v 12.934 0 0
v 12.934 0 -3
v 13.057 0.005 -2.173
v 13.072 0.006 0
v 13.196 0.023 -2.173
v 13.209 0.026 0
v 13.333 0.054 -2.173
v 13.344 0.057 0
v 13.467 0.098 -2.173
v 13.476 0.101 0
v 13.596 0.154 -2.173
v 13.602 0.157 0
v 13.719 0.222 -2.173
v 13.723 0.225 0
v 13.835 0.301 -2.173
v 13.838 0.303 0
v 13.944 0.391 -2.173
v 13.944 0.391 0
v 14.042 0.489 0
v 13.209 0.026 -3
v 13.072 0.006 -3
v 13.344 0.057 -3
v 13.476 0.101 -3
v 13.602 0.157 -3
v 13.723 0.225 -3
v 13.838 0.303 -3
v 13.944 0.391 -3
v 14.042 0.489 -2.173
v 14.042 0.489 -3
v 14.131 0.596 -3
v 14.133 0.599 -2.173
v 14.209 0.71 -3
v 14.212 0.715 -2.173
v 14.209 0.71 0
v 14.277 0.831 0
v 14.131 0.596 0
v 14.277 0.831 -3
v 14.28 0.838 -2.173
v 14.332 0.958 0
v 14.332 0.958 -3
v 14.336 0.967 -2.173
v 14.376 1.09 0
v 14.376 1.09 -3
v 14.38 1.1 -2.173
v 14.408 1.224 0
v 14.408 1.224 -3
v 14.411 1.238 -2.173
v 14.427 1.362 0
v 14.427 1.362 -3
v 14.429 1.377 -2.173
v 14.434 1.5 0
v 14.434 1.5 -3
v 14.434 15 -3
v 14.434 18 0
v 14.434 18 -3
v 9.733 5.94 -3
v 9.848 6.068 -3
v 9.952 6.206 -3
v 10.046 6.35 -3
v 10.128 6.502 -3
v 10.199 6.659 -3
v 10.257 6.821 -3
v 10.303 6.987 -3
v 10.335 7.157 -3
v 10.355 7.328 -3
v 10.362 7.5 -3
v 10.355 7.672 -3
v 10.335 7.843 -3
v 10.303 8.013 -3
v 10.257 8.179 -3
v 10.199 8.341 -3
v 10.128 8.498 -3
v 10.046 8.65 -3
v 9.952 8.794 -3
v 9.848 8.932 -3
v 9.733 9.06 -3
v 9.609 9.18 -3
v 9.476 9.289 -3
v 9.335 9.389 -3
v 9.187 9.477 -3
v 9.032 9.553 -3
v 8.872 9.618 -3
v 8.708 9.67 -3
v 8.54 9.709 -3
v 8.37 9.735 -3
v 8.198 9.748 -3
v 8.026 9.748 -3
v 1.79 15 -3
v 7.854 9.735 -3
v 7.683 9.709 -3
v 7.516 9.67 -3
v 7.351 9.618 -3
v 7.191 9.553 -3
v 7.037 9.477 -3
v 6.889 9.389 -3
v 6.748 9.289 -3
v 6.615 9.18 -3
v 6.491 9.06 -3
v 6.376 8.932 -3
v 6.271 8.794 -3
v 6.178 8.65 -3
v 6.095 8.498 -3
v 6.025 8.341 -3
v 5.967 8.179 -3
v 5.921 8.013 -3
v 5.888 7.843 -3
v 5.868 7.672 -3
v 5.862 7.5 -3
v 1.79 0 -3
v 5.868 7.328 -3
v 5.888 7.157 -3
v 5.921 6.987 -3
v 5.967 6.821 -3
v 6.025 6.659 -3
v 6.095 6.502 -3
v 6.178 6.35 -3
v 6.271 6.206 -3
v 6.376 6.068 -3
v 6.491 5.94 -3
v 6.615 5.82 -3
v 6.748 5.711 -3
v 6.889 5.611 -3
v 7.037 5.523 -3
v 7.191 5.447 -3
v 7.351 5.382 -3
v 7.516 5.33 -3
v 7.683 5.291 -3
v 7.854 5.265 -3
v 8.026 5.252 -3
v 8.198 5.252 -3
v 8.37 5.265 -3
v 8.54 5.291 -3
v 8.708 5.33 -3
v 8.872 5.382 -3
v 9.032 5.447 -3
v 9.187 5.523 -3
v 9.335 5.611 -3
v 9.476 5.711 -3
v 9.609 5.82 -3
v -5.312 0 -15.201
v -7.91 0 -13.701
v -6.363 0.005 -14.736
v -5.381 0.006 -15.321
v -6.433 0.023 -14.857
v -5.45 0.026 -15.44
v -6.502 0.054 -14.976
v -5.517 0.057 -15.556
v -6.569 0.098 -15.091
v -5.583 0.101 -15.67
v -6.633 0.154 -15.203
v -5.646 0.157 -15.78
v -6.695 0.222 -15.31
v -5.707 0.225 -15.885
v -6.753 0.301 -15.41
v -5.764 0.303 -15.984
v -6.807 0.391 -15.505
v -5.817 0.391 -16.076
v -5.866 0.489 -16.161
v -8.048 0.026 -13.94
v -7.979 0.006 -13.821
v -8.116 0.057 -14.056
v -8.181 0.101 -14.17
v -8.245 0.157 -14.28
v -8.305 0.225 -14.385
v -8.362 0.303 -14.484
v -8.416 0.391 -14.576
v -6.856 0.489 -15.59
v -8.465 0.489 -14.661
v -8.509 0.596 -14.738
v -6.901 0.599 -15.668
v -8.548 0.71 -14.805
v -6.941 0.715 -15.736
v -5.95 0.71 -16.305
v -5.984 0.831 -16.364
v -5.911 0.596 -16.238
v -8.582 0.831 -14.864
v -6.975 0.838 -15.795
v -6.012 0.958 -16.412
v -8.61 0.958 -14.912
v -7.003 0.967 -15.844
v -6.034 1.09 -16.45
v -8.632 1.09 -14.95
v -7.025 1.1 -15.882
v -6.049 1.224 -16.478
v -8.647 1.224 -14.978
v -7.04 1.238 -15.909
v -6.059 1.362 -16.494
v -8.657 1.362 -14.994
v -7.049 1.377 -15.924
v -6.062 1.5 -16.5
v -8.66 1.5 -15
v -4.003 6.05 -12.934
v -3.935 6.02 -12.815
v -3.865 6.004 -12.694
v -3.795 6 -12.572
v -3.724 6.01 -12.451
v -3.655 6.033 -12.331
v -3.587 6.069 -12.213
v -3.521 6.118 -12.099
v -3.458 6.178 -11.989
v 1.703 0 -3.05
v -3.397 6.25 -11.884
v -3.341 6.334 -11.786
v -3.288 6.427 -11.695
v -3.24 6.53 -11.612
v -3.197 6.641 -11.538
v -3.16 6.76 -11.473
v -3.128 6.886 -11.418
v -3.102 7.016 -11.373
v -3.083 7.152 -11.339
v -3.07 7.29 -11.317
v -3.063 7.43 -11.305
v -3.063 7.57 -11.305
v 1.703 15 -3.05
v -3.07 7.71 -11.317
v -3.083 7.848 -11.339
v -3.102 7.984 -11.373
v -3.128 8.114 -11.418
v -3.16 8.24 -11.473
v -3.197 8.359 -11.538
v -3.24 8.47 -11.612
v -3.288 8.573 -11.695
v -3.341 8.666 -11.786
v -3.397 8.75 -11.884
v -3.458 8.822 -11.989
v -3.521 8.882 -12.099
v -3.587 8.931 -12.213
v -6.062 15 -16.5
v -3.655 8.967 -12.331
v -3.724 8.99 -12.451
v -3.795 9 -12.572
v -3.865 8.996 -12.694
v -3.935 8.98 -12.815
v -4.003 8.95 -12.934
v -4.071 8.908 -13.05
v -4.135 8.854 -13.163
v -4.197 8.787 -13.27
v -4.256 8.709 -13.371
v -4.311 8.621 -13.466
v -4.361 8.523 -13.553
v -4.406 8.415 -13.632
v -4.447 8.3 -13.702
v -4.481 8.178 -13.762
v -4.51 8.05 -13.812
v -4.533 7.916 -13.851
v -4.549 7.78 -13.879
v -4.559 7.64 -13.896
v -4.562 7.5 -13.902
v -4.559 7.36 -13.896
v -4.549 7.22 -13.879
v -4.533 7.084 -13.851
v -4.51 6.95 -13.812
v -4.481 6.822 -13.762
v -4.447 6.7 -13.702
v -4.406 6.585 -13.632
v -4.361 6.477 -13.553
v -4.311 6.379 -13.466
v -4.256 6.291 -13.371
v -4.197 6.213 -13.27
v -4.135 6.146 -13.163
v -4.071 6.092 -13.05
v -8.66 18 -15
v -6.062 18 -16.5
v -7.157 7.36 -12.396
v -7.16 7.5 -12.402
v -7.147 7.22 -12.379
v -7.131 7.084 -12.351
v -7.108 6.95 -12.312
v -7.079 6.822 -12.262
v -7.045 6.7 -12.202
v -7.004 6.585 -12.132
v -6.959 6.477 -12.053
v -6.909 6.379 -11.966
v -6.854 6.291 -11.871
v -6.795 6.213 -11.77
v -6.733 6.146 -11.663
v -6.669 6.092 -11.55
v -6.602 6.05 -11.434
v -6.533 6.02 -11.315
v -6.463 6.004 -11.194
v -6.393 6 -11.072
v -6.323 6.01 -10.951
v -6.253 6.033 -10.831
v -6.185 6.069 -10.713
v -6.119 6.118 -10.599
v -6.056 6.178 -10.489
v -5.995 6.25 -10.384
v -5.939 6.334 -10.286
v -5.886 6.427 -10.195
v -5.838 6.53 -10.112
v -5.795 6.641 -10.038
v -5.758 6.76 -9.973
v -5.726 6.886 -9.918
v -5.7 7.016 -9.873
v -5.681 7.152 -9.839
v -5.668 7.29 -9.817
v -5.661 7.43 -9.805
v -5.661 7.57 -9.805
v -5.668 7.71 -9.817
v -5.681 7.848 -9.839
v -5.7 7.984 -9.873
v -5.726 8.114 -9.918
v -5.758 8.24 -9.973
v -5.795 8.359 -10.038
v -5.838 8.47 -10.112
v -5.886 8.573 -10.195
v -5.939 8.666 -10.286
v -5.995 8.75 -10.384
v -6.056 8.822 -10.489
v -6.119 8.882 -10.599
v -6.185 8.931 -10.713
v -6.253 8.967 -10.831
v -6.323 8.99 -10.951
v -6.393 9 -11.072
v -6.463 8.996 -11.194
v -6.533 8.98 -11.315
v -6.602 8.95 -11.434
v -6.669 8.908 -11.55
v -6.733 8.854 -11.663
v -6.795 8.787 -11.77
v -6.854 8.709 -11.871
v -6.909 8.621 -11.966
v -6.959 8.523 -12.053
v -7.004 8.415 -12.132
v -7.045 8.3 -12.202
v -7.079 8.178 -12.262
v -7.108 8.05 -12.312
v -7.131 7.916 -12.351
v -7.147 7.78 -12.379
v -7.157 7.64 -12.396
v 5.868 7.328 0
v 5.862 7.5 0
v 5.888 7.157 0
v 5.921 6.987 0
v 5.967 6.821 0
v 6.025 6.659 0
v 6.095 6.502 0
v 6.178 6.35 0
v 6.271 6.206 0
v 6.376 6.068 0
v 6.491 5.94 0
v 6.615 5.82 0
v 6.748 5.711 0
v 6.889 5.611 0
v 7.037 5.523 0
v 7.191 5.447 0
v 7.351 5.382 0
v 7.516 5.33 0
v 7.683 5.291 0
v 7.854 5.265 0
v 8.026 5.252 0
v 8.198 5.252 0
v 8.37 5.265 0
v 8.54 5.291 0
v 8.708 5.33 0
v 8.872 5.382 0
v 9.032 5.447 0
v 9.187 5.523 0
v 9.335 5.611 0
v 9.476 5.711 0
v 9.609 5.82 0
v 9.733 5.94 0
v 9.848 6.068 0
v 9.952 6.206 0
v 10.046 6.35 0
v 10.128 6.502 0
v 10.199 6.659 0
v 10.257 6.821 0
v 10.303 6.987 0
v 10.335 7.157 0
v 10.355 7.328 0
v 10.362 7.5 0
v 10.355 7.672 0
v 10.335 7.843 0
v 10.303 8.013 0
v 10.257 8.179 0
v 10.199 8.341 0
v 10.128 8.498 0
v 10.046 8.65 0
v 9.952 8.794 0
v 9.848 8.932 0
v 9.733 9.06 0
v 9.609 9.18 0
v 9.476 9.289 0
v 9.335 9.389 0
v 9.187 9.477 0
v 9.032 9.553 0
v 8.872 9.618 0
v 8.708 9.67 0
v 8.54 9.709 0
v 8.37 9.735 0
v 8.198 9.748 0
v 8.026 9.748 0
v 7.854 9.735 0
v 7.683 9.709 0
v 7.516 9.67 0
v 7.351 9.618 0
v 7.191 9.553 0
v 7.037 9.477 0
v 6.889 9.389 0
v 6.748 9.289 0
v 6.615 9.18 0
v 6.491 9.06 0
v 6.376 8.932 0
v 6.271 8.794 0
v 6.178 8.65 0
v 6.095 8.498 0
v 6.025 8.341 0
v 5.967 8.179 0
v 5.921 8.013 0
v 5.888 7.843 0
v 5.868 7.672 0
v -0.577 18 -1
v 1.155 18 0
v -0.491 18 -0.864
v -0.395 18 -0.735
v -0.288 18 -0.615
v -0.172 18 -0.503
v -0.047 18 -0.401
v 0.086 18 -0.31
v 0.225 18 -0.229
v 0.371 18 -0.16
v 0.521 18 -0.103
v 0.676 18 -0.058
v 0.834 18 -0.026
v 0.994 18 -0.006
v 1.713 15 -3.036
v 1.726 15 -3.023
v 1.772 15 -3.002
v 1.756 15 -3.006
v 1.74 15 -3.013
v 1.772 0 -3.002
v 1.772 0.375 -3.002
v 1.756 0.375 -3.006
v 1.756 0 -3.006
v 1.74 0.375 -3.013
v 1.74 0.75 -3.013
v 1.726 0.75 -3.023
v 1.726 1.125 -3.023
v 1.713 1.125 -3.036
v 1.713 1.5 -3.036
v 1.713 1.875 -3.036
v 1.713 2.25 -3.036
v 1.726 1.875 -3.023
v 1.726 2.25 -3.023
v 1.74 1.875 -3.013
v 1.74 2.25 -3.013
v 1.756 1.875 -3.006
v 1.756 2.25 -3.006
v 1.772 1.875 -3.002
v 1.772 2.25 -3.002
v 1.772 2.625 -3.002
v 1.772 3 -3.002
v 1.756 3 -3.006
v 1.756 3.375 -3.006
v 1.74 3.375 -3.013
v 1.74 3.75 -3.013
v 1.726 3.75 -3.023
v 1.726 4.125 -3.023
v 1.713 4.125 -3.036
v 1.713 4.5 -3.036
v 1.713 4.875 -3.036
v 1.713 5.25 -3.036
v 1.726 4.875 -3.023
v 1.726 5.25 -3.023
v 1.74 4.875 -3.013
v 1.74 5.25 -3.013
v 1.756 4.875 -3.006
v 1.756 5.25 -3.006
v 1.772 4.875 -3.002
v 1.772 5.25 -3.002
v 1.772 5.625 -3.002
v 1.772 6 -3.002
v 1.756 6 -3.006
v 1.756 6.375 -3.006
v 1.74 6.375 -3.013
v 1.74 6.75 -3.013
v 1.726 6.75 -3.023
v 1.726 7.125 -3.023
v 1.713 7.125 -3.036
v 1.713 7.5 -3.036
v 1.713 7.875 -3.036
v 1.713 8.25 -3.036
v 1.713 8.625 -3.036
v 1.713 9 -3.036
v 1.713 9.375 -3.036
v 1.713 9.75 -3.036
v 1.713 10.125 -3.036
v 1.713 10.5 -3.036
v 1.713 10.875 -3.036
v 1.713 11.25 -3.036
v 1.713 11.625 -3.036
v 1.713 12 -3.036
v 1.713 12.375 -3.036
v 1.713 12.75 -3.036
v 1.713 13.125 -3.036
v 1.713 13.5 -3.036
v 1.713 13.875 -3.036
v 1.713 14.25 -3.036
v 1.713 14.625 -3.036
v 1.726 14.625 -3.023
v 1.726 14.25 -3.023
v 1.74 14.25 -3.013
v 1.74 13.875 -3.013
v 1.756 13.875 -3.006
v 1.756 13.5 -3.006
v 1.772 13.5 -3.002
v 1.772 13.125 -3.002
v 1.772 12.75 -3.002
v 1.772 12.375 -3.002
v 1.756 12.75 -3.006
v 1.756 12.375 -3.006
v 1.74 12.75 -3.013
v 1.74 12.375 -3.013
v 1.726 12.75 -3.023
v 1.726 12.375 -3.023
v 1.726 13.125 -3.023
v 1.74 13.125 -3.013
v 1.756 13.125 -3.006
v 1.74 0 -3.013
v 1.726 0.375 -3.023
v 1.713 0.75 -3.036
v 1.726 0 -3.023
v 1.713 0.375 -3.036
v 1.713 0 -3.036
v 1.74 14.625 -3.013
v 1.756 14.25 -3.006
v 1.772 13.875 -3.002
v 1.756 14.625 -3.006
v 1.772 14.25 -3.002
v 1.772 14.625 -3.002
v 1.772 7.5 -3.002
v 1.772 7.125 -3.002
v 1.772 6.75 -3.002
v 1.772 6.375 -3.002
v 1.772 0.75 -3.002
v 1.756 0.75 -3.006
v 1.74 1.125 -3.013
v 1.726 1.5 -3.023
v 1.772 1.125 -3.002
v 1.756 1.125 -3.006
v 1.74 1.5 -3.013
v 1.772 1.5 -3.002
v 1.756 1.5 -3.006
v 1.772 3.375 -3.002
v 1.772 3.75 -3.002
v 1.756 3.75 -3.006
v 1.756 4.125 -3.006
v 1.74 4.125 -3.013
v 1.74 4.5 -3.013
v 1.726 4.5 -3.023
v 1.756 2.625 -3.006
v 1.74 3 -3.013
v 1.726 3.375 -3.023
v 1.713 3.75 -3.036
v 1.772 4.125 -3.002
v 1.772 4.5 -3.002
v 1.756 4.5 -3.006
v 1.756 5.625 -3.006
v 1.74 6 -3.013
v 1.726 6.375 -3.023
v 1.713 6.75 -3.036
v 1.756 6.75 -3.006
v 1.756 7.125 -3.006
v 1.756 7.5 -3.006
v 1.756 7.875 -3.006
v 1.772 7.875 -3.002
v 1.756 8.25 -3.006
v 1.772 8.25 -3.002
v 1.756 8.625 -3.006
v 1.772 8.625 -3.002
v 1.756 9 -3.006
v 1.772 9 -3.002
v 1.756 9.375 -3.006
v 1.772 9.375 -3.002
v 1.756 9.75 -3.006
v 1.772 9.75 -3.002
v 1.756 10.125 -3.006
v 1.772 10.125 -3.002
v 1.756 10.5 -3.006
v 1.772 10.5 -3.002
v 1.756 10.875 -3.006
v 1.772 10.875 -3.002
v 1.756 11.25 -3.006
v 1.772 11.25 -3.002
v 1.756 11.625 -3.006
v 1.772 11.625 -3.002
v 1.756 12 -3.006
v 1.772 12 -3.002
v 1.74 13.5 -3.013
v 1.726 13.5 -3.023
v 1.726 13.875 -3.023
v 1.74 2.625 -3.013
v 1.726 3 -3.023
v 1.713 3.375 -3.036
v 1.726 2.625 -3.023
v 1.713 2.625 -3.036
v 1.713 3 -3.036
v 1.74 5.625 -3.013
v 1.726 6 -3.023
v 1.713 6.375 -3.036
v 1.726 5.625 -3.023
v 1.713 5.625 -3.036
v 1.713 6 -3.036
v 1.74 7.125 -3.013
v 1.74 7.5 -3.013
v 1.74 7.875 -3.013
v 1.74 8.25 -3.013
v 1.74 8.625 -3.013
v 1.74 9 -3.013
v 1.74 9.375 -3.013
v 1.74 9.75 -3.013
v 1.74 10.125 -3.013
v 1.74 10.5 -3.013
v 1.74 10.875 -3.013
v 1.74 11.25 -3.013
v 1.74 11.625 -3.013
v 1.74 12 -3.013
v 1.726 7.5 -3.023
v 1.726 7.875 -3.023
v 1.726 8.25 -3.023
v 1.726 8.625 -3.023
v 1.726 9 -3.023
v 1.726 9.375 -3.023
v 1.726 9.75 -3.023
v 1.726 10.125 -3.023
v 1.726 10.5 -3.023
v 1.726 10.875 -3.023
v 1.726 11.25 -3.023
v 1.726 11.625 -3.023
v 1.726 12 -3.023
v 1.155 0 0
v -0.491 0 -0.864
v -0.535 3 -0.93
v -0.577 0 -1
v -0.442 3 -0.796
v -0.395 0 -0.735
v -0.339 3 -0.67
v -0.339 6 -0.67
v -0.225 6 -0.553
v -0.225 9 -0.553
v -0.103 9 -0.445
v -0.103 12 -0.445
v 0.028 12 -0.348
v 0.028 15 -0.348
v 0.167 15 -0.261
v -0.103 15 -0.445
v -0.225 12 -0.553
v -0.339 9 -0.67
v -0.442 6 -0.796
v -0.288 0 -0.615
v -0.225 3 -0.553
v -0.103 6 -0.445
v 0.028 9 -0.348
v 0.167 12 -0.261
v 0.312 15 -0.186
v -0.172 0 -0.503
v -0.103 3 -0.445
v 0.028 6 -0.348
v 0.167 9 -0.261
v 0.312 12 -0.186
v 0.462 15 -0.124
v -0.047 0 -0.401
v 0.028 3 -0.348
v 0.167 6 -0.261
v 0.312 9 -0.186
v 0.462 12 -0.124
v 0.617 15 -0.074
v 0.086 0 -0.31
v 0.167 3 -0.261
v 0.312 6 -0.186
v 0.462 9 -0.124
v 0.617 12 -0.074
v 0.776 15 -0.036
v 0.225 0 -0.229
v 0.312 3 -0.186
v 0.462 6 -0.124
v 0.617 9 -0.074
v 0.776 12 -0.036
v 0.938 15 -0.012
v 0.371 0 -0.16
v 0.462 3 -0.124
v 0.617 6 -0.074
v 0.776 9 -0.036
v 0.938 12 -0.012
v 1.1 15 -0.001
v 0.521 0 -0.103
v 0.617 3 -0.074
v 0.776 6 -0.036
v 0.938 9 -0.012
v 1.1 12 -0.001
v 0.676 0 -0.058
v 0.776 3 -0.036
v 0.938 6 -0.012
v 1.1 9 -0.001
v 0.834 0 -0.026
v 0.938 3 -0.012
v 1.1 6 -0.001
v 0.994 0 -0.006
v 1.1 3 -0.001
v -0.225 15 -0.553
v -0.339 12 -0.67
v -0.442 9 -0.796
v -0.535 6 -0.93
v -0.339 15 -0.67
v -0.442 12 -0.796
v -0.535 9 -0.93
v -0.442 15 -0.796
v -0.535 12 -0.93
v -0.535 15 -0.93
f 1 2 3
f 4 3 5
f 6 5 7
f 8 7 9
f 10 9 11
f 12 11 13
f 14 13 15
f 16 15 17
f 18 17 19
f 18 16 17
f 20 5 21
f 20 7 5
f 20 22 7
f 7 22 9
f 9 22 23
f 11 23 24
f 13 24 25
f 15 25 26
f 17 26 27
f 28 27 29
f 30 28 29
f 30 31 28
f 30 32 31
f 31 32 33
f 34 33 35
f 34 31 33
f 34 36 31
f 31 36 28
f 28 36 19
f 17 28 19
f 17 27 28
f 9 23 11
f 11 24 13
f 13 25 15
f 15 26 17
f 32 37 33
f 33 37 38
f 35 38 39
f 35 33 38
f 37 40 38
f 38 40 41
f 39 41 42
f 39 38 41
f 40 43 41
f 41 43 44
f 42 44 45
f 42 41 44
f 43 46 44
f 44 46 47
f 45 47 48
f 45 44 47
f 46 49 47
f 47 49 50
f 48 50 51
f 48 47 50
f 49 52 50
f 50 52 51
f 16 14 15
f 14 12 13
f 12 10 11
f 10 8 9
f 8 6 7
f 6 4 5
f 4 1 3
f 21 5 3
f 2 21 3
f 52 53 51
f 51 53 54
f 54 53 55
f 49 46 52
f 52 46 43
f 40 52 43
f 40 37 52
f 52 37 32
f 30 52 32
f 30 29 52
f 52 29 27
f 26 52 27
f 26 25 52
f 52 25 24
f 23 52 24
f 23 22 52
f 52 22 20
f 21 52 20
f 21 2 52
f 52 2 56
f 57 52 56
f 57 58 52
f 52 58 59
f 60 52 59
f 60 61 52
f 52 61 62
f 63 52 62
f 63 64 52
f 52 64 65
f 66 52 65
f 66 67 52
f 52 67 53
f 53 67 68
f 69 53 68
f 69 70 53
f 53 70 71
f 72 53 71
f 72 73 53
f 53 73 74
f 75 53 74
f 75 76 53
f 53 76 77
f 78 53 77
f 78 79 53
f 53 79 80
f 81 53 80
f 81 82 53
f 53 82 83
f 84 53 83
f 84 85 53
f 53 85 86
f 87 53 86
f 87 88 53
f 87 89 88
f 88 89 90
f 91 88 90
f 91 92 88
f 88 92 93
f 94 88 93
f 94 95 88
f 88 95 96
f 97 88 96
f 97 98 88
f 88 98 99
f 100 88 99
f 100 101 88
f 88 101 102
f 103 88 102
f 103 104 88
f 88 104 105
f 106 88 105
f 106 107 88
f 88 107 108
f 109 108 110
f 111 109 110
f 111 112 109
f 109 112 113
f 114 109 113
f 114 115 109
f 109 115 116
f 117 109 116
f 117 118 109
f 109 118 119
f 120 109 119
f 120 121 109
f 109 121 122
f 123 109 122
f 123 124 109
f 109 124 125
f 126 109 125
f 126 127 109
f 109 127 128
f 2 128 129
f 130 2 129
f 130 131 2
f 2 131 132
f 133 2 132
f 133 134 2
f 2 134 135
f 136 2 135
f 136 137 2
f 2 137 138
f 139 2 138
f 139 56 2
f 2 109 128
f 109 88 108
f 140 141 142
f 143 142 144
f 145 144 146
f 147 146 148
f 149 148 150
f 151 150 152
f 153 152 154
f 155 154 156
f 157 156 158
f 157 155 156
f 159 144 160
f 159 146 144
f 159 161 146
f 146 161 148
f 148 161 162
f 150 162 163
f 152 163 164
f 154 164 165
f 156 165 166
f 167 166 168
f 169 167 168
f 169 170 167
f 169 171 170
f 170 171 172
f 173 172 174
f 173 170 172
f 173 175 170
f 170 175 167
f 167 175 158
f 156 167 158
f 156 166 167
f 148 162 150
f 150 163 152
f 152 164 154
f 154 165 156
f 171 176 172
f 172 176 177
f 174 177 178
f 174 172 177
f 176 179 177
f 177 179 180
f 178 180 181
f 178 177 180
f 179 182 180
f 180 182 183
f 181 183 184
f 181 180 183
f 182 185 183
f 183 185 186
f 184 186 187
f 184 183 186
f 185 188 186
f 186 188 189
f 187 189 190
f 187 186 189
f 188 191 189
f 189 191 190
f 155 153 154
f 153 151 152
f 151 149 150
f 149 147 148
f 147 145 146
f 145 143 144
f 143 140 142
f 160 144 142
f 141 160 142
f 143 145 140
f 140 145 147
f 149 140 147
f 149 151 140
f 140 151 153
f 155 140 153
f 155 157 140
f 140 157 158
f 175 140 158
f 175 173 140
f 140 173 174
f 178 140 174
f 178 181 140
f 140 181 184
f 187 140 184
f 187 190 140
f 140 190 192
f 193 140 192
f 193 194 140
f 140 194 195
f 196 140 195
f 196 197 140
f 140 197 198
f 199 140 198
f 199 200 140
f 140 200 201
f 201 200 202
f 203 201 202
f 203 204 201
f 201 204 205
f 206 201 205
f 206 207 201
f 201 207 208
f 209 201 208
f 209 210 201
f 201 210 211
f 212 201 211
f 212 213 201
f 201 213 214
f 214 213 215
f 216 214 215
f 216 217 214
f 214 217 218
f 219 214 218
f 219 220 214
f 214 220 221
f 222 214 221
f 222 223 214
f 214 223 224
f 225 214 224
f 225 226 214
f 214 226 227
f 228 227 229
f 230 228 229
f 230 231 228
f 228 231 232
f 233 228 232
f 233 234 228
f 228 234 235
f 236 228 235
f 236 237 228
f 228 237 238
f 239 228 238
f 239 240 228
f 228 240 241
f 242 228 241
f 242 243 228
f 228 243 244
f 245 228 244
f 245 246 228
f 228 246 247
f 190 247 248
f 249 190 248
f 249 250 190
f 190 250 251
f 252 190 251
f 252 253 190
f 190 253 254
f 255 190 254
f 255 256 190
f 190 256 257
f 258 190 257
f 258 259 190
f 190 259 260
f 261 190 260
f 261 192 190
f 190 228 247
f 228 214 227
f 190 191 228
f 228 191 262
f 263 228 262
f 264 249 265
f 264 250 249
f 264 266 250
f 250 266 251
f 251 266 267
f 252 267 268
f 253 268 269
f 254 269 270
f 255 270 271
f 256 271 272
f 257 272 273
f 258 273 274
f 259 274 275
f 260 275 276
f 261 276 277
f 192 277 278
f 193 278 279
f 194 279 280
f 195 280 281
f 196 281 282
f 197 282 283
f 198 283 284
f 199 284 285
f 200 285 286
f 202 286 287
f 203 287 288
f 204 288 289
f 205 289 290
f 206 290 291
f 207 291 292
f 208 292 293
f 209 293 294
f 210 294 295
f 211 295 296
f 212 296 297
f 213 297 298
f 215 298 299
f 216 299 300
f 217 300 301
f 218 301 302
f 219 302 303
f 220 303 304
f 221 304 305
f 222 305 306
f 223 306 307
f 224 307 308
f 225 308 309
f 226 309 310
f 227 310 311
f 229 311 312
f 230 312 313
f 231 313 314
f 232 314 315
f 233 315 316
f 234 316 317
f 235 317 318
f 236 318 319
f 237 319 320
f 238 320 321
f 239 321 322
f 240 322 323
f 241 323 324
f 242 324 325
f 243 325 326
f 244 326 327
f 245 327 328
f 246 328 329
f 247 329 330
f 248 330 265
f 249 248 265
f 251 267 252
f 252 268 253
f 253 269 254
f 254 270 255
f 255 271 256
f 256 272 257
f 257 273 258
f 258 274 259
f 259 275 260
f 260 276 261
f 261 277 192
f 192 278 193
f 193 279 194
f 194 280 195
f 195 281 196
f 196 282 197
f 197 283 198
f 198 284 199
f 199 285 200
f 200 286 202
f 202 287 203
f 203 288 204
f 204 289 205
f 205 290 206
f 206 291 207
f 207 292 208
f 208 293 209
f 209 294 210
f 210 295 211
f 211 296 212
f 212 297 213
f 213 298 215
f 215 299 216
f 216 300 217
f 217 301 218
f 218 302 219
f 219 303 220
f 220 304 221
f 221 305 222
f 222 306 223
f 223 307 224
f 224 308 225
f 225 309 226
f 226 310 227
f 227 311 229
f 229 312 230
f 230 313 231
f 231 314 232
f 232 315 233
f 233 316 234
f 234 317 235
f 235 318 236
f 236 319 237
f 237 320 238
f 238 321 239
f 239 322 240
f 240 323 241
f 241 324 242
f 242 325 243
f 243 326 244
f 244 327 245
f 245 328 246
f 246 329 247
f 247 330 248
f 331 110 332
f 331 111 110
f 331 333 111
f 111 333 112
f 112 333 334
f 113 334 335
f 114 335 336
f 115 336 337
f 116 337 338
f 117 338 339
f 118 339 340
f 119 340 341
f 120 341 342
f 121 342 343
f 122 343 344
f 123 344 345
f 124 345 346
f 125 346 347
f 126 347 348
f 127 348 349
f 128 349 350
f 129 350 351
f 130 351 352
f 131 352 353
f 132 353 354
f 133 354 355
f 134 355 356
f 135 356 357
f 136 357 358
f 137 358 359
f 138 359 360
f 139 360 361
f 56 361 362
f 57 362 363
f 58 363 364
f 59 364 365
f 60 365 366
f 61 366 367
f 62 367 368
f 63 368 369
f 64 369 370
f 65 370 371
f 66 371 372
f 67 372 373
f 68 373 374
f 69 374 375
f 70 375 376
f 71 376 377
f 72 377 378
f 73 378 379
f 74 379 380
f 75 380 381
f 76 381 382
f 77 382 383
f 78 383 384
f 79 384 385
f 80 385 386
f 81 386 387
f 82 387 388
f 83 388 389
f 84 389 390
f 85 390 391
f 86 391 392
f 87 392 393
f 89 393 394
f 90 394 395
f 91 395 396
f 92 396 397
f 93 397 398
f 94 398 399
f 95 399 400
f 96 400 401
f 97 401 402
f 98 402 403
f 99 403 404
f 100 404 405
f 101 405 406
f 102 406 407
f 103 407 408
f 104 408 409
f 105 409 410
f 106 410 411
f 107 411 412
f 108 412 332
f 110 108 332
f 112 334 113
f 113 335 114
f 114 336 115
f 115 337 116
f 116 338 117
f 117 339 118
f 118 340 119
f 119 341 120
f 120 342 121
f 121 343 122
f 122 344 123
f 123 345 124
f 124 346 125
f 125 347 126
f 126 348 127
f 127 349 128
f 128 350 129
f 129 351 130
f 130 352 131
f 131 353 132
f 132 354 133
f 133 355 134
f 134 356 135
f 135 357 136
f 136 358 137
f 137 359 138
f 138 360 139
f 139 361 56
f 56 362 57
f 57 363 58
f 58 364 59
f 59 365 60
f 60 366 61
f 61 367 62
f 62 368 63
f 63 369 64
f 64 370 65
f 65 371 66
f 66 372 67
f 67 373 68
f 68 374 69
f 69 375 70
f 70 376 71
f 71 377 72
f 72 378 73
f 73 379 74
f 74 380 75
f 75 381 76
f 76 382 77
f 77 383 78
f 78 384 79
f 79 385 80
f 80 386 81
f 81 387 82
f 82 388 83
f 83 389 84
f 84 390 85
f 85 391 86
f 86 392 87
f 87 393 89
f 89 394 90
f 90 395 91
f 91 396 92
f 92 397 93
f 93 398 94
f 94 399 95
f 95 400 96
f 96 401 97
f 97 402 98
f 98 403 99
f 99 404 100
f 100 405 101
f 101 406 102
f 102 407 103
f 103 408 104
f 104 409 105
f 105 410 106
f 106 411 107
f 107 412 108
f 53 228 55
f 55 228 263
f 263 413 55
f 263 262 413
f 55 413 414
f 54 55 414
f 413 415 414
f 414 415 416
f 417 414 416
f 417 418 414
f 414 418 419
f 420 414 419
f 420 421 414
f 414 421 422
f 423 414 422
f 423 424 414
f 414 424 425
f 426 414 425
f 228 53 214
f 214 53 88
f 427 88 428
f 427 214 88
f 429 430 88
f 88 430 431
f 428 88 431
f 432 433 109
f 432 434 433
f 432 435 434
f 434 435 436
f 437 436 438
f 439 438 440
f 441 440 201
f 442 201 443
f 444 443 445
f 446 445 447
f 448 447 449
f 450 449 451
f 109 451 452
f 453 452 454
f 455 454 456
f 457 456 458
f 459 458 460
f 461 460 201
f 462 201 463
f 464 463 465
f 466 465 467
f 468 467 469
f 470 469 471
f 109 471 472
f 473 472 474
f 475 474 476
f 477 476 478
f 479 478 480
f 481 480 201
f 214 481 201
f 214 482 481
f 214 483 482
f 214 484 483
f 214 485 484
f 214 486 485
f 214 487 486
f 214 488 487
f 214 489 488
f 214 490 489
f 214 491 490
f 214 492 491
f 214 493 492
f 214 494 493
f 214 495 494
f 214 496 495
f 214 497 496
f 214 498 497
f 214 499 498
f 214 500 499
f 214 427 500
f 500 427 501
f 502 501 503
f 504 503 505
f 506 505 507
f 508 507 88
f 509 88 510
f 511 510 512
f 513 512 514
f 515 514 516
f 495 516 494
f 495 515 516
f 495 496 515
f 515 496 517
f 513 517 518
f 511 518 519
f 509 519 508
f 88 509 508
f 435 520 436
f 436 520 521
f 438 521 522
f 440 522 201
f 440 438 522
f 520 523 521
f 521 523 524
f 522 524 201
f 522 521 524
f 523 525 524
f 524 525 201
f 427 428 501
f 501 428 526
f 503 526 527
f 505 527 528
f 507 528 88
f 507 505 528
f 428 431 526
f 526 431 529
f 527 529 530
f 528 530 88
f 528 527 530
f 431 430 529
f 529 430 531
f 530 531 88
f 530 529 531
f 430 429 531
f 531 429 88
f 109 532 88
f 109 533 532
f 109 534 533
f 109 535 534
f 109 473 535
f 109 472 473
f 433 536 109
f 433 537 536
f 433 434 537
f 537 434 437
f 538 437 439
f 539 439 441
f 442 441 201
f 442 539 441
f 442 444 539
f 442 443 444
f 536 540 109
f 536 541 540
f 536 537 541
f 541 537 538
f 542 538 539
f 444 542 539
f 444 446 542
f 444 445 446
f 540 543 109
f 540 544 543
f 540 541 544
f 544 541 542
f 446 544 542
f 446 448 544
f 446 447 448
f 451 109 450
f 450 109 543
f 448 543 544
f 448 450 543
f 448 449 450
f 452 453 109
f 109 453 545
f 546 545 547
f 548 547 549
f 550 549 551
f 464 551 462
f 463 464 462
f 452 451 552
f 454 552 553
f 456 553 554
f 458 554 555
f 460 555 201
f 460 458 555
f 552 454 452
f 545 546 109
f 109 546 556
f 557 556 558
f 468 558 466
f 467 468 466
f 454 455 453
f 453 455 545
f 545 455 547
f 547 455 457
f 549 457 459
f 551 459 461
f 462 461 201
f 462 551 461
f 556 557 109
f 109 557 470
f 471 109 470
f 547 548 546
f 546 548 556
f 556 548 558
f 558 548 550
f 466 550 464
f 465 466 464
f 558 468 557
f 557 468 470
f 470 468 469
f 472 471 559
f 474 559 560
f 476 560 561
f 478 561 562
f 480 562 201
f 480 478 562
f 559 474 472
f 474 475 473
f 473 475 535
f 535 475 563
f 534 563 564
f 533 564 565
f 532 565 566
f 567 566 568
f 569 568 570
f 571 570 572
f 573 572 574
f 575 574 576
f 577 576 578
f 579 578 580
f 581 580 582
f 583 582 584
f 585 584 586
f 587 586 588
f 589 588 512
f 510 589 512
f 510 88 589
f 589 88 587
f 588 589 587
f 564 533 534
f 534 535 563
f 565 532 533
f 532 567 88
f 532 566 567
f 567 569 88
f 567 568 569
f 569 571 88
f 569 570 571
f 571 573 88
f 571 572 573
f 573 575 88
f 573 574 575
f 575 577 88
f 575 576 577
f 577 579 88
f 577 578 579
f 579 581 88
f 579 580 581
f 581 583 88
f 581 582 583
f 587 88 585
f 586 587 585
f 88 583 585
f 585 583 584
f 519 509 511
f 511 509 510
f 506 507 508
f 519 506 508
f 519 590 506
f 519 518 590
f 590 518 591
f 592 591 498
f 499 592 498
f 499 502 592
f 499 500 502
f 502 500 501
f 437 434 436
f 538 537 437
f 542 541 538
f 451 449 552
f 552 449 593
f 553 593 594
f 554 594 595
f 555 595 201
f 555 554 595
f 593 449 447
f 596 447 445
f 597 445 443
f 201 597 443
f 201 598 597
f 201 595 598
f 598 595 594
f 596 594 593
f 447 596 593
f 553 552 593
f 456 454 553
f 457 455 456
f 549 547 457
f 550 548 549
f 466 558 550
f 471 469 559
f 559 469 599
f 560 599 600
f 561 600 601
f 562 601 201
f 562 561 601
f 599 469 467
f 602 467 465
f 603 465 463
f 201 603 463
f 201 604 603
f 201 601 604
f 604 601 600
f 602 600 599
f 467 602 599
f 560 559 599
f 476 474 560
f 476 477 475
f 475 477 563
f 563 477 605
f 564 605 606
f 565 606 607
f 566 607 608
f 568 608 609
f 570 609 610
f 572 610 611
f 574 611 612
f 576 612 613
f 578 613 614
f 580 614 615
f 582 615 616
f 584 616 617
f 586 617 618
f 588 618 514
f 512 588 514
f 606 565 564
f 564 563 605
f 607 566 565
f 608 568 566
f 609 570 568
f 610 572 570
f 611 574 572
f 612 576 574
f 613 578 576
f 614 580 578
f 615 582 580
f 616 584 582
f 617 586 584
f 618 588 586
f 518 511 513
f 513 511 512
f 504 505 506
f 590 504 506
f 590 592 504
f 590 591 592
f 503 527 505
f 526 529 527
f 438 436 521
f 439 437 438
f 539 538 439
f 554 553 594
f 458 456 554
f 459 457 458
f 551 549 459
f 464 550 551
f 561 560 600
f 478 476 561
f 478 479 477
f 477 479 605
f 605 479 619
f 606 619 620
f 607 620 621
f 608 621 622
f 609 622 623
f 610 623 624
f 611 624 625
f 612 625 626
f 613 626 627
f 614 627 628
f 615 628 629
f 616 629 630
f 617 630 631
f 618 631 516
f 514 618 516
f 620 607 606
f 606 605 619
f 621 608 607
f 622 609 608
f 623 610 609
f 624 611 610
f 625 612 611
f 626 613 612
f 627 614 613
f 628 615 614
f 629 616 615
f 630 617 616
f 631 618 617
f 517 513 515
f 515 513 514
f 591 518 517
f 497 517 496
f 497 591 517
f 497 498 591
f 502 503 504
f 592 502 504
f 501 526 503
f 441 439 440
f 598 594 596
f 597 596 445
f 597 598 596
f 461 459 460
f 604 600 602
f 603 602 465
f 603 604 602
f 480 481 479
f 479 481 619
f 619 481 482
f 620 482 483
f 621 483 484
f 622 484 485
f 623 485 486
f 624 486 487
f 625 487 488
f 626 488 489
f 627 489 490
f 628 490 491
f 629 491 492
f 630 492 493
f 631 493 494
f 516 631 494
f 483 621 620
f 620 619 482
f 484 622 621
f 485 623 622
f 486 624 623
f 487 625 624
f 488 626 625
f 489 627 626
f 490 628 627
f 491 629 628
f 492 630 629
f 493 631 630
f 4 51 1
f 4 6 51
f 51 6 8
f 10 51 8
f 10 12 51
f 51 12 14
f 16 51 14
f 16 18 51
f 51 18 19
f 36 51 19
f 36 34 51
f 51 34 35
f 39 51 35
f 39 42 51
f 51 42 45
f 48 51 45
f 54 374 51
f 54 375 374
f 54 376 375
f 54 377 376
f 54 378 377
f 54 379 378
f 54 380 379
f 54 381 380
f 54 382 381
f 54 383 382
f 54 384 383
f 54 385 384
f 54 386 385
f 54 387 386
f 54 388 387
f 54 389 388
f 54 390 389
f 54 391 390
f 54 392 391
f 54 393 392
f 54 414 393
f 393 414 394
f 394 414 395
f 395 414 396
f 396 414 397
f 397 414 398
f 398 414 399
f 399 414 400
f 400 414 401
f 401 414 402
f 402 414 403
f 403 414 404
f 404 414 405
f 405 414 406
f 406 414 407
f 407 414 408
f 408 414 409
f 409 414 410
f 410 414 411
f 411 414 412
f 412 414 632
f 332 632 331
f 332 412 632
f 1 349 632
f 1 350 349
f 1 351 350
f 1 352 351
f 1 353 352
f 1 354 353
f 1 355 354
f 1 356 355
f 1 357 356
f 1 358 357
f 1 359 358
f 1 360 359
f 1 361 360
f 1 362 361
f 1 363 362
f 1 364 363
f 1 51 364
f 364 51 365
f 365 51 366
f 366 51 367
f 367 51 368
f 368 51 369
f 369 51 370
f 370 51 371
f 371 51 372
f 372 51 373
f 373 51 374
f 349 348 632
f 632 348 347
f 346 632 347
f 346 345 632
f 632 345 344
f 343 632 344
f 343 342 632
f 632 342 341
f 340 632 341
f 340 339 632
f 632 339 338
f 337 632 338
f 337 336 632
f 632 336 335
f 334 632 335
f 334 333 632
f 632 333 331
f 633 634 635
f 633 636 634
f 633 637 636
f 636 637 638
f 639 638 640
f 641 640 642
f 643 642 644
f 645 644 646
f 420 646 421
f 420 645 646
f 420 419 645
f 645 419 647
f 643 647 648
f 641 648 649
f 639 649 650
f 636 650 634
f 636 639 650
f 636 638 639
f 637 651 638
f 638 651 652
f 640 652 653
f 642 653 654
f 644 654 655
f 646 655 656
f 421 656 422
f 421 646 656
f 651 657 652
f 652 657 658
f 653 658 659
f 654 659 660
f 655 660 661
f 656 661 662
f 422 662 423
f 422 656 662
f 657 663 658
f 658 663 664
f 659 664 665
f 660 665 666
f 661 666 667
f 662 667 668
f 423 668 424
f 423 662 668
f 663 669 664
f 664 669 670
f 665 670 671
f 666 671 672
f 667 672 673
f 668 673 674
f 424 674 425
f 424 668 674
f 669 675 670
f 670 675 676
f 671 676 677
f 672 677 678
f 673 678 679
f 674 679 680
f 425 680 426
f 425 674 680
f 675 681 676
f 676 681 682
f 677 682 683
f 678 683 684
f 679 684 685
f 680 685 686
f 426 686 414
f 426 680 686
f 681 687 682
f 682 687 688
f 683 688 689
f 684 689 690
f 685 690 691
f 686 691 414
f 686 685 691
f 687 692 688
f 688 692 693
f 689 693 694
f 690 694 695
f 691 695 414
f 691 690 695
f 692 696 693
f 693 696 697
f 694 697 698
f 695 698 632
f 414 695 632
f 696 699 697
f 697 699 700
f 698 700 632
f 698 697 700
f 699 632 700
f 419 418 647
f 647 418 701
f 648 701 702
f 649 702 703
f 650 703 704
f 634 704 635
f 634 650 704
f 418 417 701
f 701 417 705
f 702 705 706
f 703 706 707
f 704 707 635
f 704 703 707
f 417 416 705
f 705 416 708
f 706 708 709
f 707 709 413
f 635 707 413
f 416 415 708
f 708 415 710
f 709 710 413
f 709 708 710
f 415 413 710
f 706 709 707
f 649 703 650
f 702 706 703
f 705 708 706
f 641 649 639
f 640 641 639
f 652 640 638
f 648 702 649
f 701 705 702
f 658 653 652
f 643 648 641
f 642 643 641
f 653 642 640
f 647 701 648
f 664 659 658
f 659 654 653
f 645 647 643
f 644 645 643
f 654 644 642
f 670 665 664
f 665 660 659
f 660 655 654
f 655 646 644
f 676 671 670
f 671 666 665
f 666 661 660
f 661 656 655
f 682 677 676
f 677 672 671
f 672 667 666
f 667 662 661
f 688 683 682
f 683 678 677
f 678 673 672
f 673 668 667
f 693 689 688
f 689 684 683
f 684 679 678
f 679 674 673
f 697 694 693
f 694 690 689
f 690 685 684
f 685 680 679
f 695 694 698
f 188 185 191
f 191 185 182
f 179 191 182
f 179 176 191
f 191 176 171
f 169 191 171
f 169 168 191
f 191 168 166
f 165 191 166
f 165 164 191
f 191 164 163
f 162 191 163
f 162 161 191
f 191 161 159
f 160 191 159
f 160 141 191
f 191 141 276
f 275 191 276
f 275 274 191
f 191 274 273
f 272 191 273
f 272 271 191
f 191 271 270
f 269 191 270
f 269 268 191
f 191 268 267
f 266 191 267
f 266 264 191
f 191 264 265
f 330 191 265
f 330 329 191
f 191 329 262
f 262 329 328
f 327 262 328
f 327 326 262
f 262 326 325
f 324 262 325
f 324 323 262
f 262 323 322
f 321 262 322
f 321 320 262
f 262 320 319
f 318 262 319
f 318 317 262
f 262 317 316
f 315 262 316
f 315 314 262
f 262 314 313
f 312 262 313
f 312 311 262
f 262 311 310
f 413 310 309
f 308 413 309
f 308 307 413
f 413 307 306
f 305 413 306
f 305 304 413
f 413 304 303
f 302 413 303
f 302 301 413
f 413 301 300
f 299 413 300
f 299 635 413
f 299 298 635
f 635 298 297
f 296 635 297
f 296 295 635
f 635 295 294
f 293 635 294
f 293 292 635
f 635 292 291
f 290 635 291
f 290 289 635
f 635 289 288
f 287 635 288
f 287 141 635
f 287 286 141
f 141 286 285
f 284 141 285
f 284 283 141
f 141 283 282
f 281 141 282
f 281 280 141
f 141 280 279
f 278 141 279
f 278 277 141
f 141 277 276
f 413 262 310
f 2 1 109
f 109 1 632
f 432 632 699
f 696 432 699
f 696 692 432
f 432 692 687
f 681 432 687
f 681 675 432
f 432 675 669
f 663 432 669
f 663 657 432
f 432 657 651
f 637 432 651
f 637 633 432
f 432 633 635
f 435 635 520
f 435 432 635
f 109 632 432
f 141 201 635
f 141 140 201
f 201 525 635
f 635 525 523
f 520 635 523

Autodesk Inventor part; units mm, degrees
ref_plane "YZ Plane" through (0, 0, 0) normal (1, 0, 0) x (0, 1, 0)
ref_plane "XZ Plane" through (0, 0, 0) normal (0, 1, 0) x (-1, 0, 0)
ref_plane "XY Plane" through (0, 0, 0) normal (0, 0, 1) x (1, 0, 0)
sketch "Sketch1" plane through (0, 0, 0) normal (0, 1, 0) x (-1, 0, 0)
  line L0 (0.5774, -1) -> (8.6603, -15)
  line L1 (8.6603, -15) -> (6.0622, -16.5)
  line L2 (-1.1547, 0) -> (-14.4338, 0)
  line L3 (-14.4338, 0) -> (-14.4338, -3)
  line L4 (-14.4338, -3) -> (-1.7898, -3)
  line L5 (-1.7032, -3.05) -> (6.0622, -16.5)
  line L6 (0, 0) -> (-8.1844, -14.1757) construction
  arc A0 (-1.7032, -3.05) -> (-1.7898, -3) centre (-1.7898, -3.1) ccw
  arc A1 (0.5774, -1) -> (-1.1547, 0) centre (-1.1547, -2) ccw
  line L7 (-19.0526, 0) -> (13.2791, 0) projected
  point P0 (-1.7321, -3)
  dimension "d4" = 3
  dimension "d8" = 0.1
  dimension "d9" = 2
  dimension "d16" = 120
  dimension "d19" = 12.5
  dimension "d20" = 15
extrude "Extrusion1" add sketch "Sketch1" along normal blind 15
sketch "Sketch2" plane through (0, 15, 0) normal (0, 1, 0) x (1, 0, 0)
  line L0 (-8.6603, 15) -> (-0.5774, 1) projected
  line L1 (1.1547, 0) -> (14.4338, 0) projected
  line L2 (14.4338, 0) -> (14.4338, 3) projected
  line L3 (14.4338, 3) -> (1.7898, 3) projected
  line L4 (1.7032, 3.05) -> (-6.0622, 16.5) projected
  line L5 (-6.0622, 16.5) -> (-8.6603, 15) projected
  line L6 (14.4338, 3) -> (-6.0622, 16.5)
  arc A0 (-0.5774, 1) -> (1.1547, 0) centre (1.1547, 2) ccw projected
  arc A1 (1.7032, 3.05) -> (1.7898, 3) centre (1.7898, 3.1) ccw projected
  point P0 (0, 0)
extrude "Extrusion2" add sketch "Sketch2" along normal blind 3
sketch "Sketch3" plane through (14.4338, 0, -3) normal (0, 0, -1) x (-1, 0, 0)
  line L0 (0, 0) -> (12.644, 0) projected
  line L1 (0, 0) -> (0, 15) projected
  circle A0 centre (6.322, 7.5) radius 2.25
  line L2 (12.644, 0) -> (12.644, 15) projected
  line L3 (0, 15) -> (12.644, 15) projected
  point P0 (14.4338, 0)
  point P1 (6.322, 0)
  point P2 (0, 7.5)
  dimension "d5" = 4.5
extrude "Extrusion3" cut sketch "Sketch3" against normal through all contours A0
sketch "Sketch5" plane through (-6.0622, 0, -16.5) normal (0.866, 0, -0.5) x (-0.5, 0, -0.866)
  circle A0 centre (-4.5, 7.5) radius 1.5
  line L0 (-15.5307, 0) -> (0, 0) projected
  line L1 (0, 0) -> (0, 15) projected
  line L2 (-15.5307, 15) -> (0, 15) projected
  line L3 (-15.5307, 0) -> (-15.5307, 15) projected
  point P0 (-17.3205, 0)
  point P1 (0, 7.5)
  dimension "d12" = 3
  dimension "d18" = 4.5
extrude "Extrusion4" cut sketch "Sketch5" against normal through all contours A0
fillet "Fillet1" radius 1.5 2 edges at (-7.3612, 0, -15.75) (14.4338, 0, -1.5)
properties part number "EE_adapter"
